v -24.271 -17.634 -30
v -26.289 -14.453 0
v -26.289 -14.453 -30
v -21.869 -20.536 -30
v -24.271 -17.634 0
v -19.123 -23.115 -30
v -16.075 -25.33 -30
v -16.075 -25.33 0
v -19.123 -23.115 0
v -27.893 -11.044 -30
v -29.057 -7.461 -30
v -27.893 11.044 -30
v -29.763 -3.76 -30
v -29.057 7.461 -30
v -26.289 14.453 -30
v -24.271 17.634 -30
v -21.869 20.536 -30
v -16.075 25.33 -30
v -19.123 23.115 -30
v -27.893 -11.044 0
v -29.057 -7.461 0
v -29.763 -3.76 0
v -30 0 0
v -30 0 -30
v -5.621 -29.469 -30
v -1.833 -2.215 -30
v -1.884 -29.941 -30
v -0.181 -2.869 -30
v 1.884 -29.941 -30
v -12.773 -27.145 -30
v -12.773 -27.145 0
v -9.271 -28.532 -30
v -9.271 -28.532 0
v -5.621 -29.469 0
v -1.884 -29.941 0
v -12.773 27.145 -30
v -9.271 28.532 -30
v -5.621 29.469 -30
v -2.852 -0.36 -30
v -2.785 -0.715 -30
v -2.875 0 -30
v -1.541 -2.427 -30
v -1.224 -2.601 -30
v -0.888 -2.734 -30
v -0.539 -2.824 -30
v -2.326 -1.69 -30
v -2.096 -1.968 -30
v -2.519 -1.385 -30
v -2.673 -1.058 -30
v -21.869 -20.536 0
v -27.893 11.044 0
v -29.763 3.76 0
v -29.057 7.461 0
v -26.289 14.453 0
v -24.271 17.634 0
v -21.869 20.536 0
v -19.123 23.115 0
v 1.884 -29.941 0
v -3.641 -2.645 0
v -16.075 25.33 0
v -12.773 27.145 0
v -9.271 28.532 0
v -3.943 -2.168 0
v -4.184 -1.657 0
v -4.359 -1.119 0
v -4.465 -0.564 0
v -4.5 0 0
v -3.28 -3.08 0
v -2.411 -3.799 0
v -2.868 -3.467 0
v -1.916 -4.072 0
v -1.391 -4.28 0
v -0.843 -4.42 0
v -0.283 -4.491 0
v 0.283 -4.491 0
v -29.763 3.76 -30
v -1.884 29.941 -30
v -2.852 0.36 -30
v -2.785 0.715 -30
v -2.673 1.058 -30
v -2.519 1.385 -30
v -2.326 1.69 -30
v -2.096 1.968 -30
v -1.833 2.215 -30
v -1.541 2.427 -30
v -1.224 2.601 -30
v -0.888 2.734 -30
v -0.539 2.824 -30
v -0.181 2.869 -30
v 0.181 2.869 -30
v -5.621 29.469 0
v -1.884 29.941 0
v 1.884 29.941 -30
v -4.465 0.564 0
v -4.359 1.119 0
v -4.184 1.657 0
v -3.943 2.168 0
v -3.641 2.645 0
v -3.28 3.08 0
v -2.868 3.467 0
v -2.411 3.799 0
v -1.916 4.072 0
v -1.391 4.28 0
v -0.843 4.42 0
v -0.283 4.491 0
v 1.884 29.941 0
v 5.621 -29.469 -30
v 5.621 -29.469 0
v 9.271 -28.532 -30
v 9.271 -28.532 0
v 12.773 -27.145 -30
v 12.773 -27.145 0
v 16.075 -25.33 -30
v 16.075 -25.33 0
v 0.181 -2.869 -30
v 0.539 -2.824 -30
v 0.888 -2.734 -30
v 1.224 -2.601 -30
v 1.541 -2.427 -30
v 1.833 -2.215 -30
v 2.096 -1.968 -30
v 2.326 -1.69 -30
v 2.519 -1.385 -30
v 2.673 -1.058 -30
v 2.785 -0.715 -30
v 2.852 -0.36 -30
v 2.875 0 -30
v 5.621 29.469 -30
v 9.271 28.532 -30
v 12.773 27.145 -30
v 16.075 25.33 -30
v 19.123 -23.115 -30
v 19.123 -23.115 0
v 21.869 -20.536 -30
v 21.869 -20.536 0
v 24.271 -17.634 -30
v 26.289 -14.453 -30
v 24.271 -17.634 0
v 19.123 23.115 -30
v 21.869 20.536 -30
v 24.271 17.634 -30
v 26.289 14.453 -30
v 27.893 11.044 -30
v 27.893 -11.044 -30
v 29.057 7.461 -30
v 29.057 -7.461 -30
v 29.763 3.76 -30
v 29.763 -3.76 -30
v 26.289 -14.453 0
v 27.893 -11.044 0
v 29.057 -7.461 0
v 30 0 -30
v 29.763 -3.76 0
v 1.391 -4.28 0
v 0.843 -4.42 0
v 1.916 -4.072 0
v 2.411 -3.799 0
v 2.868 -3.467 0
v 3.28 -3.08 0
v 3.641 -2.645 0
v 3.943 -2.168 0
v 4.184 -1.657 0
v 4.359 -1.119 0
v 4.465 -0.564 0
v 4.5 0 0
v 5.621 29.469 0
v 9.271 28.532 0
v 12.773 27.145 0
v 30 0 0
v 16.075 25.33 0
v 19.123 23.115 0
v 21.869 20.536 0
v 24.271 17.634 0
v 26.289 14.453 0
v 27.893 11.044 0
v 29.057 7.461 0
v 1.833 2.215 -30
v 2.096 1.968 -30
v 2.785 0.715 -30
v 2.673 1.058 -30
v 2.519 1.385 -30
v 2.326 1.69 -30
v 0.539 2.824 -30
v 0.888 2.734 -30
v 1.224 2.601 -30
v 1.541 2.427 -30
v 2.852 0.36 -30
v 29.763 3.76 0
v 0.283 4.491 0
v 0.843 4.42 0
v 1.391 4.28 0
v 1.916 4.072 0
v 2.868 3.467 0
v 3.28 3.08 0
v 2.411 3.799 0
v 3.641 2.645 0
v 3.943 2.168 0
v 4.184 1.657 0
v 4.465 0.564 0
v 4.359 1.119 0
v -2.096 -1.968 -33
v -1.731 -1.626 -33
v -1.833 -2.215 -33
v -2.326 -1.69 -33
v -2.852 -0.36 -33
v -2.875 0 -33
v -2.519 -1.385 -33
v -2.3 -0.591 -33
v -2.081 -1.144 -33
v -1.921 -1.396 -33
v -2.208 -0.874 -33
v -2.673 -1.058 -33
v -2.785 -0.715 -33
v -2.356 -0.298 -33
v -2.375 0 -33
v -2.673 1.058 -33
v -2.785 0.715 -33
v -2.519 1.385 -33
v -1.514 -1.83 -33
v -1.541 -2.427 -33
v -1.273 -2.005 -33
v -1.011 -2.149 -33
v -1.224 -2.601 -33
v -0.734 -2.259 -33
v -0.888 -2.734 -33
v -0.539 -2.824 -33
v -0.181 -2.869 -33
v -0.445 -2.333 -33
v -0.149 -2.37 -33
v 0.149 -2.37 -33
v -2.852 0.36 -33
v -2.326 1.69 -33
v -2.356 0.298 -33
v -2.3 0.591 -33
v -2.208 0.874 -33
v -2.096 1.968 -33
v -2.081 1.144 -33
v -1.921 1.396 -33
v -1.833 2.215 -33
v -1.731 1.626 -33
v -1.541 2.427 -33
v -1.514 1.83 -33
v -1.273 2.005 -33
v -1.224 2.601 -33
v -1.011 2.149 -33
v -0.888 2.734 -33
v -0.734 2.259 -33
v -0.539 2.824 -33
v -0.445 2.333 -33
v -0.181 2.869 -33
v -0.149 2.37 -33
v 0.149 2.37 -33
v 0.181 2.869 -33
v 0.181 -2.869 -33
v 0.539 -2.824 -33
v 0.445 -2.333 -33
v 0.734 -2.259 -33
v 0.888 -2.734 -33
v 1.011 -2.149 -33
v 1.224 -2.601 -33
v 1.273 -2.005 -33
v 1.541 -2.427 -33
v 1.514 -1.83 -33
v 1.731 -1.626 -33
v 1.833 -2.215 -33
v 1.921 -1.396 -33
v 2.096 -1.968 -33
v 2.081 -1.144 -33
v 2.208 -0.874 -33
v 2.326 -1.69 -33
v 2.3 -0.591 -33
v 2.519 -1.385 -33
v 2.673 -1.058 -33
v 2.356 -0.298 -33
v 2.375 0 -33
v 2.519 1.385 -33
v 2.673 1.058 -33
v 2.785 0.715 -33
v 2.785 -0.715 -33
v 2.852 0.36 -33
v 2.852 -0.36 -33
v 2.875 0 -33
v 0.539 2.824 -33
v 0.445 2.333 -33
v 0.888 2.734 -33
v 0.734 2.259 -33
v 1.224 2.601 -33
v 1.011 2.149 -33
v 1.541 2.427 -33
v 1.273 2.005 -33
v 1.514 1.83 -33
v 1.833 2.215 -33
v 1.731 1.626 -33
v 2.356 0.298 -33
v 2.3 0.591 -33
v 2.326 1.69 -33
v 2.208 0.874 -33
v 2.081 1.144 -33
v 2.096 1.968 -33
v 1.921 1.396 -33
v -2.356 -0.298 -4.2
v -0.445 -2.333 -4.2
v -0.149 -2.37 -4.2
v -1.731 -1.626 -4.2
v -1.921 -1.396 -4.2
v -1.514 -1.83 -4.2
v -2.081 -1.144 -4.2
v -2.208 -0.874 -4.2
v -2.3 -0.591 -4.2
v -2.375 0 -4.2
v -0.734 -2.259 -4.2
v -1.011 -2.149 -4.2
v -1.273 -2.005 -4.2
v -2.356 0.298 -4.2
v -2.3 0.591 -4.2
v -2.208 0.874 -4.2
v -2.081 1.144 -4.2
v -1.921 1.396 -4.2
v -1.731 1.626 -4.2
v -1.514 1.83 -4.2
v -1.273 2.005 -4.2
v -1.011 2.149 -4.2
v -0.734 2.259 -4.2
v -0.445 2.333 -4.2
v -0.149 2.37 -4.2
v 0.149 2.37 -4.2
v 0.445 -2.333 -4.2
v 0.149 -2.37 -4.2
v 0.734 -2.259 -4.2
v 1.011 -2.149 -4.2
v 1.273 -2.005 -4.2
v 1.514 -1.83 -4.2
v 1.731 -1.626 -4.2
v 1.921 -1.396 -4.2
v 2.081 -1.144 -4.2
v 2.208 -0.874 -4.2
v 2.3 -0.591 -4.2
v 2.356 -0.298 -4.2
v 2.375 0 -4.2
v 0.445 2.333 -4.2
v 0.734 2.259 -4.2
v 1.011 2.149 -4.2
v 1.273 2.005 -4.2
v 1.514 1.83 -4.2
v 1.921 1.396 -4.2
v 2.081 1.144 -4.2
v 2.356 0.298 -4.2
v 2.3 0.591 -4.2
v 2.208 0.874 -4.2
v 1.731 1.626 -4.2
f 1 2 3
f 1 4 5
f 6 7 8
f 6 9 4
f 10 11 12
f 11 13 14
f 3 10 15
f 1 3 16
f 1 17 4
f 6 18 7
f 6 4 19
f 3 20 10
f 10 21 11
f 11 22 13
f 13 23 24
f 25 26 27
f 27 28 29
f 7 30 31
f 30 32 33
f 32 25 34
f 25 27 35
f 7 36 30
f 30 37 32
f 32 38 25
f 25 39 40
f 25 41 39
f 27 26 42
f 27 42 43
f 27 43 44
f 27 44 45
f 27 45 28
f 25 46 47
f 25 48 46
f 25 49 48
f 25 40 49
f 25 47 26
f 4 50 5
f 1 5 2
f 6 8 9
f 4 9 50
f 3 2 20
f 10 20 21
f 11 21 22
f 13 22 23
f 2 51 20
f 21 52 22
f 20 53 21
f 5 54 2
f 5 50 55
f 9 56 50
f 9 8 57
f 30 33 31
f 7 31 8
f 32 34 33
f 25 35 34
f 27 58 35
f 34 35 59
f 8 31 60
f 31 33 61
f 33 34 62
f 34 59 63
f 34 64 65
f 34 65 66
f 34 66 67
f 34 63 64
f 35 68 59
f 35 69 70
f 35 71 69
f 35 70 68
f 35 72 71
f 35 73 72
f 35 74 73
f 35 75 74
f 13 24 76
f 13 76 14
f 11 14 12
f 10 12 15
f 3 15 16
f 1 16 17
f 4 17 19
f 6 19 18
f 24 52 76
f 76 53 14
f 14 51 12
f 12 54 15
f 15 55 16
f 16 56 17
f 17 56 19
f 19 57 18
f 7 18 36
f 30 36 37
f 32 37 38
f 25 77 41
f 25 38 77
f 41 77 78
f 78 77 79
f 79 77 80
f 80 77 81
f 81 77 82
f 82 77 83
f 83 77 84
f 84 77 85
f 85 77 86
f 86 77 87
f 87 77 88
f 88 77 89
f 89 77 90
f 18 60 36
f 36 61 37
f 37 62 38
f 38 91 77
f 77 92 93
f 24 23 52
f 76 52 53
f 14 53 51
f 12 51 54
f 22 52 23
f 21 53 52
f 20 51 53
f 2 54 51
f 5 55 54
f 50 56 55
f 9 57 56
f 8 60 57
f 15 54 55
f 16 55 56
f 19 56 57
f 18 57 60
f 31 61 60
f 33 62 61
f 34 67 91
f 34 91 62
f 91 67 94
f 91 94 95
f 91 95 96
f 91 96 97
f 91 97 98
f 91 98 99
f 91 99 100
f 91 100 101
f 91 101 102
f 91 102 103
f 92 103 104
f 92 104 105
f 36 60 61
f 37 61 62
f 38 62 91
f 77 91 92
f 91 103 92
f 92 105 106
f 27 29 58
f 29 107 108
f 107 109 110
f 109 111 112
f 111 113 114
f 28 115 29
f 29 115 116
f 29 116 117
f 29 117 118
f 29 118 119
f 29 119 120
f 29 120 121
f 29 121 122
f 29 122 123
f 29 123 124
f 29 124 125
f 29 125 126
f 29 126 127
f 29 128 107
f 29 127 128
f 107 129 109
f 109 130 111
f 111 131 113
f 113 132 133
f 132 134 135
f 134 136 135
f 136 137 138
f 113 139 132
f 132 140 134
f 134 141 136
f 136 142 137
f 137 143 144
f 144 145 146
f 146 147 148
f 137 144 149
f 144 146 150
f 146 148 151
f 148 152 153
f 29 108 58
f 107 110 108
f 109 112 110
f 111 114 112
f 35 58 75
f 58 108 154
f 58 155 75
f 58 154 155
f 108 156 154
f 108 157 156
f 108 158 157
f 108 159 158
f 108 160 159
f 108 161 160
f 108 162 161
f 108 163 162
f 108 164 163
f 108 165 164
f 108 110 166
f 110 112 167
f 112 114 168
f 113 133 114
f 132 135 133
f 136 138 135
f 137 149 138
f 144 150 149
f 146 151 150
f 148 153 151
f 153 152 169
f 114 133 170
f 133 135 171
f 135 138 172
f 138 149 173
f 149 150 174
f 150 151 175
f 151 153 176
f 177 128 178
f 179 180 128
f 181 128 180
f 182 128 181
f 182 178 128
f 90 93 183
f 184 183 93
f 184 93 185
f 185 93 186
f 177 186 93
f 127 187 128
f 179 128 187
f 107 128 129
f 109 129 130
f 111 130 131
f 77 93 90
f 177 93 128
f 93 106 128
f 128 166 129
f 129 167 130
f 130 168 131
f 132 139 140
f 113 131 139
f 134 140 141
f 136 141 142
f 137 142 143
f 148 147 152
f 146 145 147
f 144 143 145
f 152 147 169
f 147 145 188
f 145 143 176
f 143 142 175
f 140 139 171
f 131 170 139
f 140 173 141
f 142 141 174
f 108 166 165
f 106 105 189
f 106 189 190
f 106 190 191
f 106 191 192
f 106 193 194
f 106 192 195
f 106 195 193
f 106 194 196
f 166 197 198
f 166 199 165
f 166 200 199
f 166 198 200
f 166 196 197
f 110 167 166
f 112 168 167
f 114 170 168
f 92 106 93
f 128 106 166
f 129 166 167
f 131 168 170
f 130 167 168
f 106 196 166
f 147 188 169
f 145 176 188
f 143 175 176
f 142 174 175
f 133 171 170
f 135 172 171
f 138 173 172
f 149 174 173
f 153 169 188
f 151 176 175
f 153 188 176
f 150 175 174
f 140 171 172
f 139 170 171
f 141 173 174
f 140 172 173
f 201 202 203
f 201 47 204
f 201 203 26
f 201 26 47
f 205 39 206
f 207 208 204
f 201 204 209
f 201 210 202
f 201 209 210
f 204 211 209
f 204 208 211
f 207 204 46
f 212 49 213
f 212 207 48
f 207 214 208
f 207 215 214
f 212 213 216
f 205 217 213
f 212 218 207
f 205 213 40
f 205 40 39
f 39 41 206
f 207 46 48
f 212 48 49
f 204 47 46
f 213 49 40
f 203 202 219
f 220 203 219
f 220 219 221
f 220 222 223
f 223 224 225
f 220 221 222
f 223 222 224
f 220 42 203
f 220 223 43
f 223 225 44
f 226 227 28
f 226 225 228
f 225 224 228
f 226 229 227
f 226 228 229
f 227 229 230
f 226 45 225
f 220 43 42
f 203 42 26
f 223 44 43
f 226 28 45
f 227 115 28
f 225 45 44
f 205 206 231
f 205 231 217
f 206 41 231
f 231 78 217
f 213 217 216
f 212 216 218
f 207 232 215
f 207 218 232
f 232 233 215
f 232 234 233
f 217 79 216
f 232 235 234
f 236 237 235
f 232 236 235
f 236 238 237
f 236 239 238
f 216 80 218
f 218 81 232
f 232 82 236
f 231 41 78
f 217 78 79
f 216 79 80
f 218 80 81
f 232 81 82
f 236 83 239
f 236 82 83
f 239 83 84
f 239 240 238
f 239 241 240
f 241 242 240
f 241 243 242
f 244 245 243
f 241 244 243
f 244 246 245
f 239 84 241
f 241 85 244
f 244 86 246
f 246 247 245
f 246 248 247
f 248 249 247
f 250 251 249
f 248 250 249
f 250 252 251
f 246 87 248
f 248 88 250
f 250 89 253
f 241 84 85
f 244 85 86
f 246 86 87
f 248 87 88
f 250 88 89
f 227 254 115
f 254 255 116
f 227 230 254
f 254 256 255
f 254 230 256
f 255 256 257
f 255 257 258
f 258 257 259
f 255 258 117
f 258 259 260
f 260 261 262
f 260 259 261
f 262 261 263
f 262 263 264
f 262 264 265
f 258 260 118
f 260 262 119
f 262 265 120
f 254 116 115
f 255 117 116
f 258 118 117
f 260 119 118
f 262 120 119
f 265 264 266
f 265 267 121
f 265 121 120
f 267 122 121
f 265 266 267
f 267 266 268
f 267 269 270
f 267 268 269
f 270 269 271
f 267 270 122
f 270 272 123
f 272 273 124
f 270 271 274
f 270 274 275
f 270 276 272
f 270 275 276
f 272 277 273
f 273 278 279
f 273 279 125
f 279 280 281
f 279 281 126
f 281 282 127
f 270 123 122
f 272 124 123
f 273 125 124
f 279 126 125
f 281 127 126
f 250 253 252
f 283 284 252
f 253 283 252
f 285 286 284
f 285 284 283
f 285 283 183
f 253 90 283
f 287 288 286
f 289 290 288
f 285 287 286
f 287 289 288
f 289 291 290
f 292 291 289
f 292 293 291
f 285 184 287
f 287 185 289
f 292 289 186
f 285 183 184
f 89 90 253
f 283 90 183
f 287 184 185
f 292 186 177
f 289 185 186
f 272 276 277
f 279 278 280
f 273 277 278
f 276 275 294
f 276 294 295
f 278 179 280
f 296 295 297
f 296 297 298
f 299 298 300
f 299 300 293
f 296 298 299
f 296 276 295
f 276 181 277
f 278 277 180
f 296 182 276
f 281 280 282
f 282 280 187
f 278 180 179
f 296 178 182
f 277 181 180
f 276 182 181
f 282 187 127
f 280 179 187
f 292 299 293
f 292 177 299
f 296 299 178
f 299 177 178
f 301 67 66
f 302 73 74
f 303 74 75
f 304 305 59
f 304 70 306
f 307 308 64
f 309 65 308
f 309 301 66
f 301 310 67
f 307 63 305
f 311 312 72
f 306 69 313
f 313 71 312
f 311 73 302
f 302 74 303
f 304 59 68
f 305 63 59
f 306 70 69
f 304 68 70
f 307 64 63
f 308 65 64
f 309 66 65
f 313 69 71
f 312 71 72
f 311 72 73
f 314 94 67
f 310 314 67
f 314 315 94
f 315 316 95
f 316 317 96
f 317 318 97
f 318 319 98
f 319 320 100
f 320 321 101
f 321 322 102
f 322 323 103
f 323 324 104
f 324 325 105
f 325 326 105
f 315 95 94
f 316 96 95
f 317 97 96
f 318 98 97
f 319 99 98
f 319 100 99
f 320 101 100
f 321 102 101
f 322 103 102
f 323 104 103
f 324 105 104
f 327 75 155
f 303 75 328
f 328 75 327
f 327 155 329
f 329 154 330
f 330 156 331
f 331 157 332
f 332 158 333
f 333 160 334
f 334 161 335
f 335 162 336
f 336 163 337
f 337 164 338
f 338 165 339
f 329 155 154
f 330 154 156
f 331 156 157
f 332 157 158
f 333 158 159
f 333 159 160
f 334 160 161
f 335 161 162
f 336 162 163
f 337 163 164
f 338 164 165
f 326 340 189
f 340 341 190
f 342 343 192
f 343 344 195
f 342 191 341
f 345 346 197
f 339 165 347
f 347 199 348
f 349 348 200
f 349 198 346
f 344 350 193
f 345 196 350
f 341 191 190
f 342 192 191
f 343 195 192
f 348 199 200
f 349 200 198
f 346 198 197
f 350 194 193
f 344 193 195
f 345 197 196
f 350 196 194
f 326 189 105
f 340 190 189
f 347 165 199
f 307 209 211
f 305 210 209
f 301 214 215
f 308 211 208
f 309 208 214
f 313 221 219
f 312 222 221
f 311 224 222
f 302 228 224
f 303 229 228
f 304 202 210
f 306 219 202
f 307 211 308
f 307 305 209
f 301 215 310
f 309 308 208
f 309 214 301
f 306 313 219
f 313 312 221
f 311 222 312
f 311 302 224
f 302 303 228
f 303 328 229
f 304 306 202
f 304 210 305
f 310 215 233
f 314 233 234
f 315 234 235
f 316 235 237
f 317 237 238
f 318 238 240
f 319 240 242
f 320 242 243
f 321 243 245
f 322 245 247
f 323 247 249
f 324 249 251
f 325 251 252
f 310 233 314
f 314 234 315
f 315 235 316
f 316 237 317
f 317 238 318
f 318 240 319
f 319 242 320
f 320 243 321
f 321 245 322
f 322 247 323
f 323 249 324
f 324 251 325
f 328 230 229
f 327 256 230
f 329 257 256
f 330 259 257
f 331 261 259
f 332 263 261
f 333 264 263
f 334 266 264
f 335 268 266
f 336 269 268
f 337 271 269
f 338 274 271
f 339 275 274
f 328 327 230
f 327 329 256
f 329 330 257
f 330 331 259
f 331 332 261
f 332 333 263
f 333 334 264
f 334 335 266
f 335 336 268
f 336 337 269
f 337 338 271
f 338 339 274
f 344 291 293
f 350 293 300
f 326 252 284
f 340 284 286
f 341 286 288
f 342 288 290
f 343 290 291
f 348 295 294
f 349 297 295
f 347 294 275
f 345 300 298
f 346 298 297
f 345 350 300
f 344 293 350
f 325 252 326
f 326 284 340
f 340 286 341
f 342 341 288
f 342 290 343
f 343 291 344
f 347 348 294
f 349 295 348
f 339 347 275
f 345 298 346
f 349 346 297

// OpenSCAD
$fn = 50;

difference() {
	union() {
		translate(v = [0, 0, -30.0]) {
			cylinder(h = 30, r = 30.0);
		}
		#translate(v = [0, 0, -33.0]) {
			cylinder(h = 33, r = 2.875);
		}
	}
	union() {
		translate(v = [0, 0, 0]) {
			rotate(a = [0, 0, 0]) {
				difference() {
					union() {
						translate(v = [0, 0, -33.0]) {
							cylinder(h = 33, r = 2.25);
						}
						translate(v = [0, 0, -4.2]) {
							cylinder(h = 4.2, r1 = 2.375, r2 = 4.5);
						}
						translate(v = [0, 0, -33.0]) {
							cylinder(h = 33, r = 2.375);
						}
						translate(v = [0, 0, -33.0]) {
							cylinder(h = 33, r = 2.25);
						}
					}
					union();
				}
			}
		}
	}
}
